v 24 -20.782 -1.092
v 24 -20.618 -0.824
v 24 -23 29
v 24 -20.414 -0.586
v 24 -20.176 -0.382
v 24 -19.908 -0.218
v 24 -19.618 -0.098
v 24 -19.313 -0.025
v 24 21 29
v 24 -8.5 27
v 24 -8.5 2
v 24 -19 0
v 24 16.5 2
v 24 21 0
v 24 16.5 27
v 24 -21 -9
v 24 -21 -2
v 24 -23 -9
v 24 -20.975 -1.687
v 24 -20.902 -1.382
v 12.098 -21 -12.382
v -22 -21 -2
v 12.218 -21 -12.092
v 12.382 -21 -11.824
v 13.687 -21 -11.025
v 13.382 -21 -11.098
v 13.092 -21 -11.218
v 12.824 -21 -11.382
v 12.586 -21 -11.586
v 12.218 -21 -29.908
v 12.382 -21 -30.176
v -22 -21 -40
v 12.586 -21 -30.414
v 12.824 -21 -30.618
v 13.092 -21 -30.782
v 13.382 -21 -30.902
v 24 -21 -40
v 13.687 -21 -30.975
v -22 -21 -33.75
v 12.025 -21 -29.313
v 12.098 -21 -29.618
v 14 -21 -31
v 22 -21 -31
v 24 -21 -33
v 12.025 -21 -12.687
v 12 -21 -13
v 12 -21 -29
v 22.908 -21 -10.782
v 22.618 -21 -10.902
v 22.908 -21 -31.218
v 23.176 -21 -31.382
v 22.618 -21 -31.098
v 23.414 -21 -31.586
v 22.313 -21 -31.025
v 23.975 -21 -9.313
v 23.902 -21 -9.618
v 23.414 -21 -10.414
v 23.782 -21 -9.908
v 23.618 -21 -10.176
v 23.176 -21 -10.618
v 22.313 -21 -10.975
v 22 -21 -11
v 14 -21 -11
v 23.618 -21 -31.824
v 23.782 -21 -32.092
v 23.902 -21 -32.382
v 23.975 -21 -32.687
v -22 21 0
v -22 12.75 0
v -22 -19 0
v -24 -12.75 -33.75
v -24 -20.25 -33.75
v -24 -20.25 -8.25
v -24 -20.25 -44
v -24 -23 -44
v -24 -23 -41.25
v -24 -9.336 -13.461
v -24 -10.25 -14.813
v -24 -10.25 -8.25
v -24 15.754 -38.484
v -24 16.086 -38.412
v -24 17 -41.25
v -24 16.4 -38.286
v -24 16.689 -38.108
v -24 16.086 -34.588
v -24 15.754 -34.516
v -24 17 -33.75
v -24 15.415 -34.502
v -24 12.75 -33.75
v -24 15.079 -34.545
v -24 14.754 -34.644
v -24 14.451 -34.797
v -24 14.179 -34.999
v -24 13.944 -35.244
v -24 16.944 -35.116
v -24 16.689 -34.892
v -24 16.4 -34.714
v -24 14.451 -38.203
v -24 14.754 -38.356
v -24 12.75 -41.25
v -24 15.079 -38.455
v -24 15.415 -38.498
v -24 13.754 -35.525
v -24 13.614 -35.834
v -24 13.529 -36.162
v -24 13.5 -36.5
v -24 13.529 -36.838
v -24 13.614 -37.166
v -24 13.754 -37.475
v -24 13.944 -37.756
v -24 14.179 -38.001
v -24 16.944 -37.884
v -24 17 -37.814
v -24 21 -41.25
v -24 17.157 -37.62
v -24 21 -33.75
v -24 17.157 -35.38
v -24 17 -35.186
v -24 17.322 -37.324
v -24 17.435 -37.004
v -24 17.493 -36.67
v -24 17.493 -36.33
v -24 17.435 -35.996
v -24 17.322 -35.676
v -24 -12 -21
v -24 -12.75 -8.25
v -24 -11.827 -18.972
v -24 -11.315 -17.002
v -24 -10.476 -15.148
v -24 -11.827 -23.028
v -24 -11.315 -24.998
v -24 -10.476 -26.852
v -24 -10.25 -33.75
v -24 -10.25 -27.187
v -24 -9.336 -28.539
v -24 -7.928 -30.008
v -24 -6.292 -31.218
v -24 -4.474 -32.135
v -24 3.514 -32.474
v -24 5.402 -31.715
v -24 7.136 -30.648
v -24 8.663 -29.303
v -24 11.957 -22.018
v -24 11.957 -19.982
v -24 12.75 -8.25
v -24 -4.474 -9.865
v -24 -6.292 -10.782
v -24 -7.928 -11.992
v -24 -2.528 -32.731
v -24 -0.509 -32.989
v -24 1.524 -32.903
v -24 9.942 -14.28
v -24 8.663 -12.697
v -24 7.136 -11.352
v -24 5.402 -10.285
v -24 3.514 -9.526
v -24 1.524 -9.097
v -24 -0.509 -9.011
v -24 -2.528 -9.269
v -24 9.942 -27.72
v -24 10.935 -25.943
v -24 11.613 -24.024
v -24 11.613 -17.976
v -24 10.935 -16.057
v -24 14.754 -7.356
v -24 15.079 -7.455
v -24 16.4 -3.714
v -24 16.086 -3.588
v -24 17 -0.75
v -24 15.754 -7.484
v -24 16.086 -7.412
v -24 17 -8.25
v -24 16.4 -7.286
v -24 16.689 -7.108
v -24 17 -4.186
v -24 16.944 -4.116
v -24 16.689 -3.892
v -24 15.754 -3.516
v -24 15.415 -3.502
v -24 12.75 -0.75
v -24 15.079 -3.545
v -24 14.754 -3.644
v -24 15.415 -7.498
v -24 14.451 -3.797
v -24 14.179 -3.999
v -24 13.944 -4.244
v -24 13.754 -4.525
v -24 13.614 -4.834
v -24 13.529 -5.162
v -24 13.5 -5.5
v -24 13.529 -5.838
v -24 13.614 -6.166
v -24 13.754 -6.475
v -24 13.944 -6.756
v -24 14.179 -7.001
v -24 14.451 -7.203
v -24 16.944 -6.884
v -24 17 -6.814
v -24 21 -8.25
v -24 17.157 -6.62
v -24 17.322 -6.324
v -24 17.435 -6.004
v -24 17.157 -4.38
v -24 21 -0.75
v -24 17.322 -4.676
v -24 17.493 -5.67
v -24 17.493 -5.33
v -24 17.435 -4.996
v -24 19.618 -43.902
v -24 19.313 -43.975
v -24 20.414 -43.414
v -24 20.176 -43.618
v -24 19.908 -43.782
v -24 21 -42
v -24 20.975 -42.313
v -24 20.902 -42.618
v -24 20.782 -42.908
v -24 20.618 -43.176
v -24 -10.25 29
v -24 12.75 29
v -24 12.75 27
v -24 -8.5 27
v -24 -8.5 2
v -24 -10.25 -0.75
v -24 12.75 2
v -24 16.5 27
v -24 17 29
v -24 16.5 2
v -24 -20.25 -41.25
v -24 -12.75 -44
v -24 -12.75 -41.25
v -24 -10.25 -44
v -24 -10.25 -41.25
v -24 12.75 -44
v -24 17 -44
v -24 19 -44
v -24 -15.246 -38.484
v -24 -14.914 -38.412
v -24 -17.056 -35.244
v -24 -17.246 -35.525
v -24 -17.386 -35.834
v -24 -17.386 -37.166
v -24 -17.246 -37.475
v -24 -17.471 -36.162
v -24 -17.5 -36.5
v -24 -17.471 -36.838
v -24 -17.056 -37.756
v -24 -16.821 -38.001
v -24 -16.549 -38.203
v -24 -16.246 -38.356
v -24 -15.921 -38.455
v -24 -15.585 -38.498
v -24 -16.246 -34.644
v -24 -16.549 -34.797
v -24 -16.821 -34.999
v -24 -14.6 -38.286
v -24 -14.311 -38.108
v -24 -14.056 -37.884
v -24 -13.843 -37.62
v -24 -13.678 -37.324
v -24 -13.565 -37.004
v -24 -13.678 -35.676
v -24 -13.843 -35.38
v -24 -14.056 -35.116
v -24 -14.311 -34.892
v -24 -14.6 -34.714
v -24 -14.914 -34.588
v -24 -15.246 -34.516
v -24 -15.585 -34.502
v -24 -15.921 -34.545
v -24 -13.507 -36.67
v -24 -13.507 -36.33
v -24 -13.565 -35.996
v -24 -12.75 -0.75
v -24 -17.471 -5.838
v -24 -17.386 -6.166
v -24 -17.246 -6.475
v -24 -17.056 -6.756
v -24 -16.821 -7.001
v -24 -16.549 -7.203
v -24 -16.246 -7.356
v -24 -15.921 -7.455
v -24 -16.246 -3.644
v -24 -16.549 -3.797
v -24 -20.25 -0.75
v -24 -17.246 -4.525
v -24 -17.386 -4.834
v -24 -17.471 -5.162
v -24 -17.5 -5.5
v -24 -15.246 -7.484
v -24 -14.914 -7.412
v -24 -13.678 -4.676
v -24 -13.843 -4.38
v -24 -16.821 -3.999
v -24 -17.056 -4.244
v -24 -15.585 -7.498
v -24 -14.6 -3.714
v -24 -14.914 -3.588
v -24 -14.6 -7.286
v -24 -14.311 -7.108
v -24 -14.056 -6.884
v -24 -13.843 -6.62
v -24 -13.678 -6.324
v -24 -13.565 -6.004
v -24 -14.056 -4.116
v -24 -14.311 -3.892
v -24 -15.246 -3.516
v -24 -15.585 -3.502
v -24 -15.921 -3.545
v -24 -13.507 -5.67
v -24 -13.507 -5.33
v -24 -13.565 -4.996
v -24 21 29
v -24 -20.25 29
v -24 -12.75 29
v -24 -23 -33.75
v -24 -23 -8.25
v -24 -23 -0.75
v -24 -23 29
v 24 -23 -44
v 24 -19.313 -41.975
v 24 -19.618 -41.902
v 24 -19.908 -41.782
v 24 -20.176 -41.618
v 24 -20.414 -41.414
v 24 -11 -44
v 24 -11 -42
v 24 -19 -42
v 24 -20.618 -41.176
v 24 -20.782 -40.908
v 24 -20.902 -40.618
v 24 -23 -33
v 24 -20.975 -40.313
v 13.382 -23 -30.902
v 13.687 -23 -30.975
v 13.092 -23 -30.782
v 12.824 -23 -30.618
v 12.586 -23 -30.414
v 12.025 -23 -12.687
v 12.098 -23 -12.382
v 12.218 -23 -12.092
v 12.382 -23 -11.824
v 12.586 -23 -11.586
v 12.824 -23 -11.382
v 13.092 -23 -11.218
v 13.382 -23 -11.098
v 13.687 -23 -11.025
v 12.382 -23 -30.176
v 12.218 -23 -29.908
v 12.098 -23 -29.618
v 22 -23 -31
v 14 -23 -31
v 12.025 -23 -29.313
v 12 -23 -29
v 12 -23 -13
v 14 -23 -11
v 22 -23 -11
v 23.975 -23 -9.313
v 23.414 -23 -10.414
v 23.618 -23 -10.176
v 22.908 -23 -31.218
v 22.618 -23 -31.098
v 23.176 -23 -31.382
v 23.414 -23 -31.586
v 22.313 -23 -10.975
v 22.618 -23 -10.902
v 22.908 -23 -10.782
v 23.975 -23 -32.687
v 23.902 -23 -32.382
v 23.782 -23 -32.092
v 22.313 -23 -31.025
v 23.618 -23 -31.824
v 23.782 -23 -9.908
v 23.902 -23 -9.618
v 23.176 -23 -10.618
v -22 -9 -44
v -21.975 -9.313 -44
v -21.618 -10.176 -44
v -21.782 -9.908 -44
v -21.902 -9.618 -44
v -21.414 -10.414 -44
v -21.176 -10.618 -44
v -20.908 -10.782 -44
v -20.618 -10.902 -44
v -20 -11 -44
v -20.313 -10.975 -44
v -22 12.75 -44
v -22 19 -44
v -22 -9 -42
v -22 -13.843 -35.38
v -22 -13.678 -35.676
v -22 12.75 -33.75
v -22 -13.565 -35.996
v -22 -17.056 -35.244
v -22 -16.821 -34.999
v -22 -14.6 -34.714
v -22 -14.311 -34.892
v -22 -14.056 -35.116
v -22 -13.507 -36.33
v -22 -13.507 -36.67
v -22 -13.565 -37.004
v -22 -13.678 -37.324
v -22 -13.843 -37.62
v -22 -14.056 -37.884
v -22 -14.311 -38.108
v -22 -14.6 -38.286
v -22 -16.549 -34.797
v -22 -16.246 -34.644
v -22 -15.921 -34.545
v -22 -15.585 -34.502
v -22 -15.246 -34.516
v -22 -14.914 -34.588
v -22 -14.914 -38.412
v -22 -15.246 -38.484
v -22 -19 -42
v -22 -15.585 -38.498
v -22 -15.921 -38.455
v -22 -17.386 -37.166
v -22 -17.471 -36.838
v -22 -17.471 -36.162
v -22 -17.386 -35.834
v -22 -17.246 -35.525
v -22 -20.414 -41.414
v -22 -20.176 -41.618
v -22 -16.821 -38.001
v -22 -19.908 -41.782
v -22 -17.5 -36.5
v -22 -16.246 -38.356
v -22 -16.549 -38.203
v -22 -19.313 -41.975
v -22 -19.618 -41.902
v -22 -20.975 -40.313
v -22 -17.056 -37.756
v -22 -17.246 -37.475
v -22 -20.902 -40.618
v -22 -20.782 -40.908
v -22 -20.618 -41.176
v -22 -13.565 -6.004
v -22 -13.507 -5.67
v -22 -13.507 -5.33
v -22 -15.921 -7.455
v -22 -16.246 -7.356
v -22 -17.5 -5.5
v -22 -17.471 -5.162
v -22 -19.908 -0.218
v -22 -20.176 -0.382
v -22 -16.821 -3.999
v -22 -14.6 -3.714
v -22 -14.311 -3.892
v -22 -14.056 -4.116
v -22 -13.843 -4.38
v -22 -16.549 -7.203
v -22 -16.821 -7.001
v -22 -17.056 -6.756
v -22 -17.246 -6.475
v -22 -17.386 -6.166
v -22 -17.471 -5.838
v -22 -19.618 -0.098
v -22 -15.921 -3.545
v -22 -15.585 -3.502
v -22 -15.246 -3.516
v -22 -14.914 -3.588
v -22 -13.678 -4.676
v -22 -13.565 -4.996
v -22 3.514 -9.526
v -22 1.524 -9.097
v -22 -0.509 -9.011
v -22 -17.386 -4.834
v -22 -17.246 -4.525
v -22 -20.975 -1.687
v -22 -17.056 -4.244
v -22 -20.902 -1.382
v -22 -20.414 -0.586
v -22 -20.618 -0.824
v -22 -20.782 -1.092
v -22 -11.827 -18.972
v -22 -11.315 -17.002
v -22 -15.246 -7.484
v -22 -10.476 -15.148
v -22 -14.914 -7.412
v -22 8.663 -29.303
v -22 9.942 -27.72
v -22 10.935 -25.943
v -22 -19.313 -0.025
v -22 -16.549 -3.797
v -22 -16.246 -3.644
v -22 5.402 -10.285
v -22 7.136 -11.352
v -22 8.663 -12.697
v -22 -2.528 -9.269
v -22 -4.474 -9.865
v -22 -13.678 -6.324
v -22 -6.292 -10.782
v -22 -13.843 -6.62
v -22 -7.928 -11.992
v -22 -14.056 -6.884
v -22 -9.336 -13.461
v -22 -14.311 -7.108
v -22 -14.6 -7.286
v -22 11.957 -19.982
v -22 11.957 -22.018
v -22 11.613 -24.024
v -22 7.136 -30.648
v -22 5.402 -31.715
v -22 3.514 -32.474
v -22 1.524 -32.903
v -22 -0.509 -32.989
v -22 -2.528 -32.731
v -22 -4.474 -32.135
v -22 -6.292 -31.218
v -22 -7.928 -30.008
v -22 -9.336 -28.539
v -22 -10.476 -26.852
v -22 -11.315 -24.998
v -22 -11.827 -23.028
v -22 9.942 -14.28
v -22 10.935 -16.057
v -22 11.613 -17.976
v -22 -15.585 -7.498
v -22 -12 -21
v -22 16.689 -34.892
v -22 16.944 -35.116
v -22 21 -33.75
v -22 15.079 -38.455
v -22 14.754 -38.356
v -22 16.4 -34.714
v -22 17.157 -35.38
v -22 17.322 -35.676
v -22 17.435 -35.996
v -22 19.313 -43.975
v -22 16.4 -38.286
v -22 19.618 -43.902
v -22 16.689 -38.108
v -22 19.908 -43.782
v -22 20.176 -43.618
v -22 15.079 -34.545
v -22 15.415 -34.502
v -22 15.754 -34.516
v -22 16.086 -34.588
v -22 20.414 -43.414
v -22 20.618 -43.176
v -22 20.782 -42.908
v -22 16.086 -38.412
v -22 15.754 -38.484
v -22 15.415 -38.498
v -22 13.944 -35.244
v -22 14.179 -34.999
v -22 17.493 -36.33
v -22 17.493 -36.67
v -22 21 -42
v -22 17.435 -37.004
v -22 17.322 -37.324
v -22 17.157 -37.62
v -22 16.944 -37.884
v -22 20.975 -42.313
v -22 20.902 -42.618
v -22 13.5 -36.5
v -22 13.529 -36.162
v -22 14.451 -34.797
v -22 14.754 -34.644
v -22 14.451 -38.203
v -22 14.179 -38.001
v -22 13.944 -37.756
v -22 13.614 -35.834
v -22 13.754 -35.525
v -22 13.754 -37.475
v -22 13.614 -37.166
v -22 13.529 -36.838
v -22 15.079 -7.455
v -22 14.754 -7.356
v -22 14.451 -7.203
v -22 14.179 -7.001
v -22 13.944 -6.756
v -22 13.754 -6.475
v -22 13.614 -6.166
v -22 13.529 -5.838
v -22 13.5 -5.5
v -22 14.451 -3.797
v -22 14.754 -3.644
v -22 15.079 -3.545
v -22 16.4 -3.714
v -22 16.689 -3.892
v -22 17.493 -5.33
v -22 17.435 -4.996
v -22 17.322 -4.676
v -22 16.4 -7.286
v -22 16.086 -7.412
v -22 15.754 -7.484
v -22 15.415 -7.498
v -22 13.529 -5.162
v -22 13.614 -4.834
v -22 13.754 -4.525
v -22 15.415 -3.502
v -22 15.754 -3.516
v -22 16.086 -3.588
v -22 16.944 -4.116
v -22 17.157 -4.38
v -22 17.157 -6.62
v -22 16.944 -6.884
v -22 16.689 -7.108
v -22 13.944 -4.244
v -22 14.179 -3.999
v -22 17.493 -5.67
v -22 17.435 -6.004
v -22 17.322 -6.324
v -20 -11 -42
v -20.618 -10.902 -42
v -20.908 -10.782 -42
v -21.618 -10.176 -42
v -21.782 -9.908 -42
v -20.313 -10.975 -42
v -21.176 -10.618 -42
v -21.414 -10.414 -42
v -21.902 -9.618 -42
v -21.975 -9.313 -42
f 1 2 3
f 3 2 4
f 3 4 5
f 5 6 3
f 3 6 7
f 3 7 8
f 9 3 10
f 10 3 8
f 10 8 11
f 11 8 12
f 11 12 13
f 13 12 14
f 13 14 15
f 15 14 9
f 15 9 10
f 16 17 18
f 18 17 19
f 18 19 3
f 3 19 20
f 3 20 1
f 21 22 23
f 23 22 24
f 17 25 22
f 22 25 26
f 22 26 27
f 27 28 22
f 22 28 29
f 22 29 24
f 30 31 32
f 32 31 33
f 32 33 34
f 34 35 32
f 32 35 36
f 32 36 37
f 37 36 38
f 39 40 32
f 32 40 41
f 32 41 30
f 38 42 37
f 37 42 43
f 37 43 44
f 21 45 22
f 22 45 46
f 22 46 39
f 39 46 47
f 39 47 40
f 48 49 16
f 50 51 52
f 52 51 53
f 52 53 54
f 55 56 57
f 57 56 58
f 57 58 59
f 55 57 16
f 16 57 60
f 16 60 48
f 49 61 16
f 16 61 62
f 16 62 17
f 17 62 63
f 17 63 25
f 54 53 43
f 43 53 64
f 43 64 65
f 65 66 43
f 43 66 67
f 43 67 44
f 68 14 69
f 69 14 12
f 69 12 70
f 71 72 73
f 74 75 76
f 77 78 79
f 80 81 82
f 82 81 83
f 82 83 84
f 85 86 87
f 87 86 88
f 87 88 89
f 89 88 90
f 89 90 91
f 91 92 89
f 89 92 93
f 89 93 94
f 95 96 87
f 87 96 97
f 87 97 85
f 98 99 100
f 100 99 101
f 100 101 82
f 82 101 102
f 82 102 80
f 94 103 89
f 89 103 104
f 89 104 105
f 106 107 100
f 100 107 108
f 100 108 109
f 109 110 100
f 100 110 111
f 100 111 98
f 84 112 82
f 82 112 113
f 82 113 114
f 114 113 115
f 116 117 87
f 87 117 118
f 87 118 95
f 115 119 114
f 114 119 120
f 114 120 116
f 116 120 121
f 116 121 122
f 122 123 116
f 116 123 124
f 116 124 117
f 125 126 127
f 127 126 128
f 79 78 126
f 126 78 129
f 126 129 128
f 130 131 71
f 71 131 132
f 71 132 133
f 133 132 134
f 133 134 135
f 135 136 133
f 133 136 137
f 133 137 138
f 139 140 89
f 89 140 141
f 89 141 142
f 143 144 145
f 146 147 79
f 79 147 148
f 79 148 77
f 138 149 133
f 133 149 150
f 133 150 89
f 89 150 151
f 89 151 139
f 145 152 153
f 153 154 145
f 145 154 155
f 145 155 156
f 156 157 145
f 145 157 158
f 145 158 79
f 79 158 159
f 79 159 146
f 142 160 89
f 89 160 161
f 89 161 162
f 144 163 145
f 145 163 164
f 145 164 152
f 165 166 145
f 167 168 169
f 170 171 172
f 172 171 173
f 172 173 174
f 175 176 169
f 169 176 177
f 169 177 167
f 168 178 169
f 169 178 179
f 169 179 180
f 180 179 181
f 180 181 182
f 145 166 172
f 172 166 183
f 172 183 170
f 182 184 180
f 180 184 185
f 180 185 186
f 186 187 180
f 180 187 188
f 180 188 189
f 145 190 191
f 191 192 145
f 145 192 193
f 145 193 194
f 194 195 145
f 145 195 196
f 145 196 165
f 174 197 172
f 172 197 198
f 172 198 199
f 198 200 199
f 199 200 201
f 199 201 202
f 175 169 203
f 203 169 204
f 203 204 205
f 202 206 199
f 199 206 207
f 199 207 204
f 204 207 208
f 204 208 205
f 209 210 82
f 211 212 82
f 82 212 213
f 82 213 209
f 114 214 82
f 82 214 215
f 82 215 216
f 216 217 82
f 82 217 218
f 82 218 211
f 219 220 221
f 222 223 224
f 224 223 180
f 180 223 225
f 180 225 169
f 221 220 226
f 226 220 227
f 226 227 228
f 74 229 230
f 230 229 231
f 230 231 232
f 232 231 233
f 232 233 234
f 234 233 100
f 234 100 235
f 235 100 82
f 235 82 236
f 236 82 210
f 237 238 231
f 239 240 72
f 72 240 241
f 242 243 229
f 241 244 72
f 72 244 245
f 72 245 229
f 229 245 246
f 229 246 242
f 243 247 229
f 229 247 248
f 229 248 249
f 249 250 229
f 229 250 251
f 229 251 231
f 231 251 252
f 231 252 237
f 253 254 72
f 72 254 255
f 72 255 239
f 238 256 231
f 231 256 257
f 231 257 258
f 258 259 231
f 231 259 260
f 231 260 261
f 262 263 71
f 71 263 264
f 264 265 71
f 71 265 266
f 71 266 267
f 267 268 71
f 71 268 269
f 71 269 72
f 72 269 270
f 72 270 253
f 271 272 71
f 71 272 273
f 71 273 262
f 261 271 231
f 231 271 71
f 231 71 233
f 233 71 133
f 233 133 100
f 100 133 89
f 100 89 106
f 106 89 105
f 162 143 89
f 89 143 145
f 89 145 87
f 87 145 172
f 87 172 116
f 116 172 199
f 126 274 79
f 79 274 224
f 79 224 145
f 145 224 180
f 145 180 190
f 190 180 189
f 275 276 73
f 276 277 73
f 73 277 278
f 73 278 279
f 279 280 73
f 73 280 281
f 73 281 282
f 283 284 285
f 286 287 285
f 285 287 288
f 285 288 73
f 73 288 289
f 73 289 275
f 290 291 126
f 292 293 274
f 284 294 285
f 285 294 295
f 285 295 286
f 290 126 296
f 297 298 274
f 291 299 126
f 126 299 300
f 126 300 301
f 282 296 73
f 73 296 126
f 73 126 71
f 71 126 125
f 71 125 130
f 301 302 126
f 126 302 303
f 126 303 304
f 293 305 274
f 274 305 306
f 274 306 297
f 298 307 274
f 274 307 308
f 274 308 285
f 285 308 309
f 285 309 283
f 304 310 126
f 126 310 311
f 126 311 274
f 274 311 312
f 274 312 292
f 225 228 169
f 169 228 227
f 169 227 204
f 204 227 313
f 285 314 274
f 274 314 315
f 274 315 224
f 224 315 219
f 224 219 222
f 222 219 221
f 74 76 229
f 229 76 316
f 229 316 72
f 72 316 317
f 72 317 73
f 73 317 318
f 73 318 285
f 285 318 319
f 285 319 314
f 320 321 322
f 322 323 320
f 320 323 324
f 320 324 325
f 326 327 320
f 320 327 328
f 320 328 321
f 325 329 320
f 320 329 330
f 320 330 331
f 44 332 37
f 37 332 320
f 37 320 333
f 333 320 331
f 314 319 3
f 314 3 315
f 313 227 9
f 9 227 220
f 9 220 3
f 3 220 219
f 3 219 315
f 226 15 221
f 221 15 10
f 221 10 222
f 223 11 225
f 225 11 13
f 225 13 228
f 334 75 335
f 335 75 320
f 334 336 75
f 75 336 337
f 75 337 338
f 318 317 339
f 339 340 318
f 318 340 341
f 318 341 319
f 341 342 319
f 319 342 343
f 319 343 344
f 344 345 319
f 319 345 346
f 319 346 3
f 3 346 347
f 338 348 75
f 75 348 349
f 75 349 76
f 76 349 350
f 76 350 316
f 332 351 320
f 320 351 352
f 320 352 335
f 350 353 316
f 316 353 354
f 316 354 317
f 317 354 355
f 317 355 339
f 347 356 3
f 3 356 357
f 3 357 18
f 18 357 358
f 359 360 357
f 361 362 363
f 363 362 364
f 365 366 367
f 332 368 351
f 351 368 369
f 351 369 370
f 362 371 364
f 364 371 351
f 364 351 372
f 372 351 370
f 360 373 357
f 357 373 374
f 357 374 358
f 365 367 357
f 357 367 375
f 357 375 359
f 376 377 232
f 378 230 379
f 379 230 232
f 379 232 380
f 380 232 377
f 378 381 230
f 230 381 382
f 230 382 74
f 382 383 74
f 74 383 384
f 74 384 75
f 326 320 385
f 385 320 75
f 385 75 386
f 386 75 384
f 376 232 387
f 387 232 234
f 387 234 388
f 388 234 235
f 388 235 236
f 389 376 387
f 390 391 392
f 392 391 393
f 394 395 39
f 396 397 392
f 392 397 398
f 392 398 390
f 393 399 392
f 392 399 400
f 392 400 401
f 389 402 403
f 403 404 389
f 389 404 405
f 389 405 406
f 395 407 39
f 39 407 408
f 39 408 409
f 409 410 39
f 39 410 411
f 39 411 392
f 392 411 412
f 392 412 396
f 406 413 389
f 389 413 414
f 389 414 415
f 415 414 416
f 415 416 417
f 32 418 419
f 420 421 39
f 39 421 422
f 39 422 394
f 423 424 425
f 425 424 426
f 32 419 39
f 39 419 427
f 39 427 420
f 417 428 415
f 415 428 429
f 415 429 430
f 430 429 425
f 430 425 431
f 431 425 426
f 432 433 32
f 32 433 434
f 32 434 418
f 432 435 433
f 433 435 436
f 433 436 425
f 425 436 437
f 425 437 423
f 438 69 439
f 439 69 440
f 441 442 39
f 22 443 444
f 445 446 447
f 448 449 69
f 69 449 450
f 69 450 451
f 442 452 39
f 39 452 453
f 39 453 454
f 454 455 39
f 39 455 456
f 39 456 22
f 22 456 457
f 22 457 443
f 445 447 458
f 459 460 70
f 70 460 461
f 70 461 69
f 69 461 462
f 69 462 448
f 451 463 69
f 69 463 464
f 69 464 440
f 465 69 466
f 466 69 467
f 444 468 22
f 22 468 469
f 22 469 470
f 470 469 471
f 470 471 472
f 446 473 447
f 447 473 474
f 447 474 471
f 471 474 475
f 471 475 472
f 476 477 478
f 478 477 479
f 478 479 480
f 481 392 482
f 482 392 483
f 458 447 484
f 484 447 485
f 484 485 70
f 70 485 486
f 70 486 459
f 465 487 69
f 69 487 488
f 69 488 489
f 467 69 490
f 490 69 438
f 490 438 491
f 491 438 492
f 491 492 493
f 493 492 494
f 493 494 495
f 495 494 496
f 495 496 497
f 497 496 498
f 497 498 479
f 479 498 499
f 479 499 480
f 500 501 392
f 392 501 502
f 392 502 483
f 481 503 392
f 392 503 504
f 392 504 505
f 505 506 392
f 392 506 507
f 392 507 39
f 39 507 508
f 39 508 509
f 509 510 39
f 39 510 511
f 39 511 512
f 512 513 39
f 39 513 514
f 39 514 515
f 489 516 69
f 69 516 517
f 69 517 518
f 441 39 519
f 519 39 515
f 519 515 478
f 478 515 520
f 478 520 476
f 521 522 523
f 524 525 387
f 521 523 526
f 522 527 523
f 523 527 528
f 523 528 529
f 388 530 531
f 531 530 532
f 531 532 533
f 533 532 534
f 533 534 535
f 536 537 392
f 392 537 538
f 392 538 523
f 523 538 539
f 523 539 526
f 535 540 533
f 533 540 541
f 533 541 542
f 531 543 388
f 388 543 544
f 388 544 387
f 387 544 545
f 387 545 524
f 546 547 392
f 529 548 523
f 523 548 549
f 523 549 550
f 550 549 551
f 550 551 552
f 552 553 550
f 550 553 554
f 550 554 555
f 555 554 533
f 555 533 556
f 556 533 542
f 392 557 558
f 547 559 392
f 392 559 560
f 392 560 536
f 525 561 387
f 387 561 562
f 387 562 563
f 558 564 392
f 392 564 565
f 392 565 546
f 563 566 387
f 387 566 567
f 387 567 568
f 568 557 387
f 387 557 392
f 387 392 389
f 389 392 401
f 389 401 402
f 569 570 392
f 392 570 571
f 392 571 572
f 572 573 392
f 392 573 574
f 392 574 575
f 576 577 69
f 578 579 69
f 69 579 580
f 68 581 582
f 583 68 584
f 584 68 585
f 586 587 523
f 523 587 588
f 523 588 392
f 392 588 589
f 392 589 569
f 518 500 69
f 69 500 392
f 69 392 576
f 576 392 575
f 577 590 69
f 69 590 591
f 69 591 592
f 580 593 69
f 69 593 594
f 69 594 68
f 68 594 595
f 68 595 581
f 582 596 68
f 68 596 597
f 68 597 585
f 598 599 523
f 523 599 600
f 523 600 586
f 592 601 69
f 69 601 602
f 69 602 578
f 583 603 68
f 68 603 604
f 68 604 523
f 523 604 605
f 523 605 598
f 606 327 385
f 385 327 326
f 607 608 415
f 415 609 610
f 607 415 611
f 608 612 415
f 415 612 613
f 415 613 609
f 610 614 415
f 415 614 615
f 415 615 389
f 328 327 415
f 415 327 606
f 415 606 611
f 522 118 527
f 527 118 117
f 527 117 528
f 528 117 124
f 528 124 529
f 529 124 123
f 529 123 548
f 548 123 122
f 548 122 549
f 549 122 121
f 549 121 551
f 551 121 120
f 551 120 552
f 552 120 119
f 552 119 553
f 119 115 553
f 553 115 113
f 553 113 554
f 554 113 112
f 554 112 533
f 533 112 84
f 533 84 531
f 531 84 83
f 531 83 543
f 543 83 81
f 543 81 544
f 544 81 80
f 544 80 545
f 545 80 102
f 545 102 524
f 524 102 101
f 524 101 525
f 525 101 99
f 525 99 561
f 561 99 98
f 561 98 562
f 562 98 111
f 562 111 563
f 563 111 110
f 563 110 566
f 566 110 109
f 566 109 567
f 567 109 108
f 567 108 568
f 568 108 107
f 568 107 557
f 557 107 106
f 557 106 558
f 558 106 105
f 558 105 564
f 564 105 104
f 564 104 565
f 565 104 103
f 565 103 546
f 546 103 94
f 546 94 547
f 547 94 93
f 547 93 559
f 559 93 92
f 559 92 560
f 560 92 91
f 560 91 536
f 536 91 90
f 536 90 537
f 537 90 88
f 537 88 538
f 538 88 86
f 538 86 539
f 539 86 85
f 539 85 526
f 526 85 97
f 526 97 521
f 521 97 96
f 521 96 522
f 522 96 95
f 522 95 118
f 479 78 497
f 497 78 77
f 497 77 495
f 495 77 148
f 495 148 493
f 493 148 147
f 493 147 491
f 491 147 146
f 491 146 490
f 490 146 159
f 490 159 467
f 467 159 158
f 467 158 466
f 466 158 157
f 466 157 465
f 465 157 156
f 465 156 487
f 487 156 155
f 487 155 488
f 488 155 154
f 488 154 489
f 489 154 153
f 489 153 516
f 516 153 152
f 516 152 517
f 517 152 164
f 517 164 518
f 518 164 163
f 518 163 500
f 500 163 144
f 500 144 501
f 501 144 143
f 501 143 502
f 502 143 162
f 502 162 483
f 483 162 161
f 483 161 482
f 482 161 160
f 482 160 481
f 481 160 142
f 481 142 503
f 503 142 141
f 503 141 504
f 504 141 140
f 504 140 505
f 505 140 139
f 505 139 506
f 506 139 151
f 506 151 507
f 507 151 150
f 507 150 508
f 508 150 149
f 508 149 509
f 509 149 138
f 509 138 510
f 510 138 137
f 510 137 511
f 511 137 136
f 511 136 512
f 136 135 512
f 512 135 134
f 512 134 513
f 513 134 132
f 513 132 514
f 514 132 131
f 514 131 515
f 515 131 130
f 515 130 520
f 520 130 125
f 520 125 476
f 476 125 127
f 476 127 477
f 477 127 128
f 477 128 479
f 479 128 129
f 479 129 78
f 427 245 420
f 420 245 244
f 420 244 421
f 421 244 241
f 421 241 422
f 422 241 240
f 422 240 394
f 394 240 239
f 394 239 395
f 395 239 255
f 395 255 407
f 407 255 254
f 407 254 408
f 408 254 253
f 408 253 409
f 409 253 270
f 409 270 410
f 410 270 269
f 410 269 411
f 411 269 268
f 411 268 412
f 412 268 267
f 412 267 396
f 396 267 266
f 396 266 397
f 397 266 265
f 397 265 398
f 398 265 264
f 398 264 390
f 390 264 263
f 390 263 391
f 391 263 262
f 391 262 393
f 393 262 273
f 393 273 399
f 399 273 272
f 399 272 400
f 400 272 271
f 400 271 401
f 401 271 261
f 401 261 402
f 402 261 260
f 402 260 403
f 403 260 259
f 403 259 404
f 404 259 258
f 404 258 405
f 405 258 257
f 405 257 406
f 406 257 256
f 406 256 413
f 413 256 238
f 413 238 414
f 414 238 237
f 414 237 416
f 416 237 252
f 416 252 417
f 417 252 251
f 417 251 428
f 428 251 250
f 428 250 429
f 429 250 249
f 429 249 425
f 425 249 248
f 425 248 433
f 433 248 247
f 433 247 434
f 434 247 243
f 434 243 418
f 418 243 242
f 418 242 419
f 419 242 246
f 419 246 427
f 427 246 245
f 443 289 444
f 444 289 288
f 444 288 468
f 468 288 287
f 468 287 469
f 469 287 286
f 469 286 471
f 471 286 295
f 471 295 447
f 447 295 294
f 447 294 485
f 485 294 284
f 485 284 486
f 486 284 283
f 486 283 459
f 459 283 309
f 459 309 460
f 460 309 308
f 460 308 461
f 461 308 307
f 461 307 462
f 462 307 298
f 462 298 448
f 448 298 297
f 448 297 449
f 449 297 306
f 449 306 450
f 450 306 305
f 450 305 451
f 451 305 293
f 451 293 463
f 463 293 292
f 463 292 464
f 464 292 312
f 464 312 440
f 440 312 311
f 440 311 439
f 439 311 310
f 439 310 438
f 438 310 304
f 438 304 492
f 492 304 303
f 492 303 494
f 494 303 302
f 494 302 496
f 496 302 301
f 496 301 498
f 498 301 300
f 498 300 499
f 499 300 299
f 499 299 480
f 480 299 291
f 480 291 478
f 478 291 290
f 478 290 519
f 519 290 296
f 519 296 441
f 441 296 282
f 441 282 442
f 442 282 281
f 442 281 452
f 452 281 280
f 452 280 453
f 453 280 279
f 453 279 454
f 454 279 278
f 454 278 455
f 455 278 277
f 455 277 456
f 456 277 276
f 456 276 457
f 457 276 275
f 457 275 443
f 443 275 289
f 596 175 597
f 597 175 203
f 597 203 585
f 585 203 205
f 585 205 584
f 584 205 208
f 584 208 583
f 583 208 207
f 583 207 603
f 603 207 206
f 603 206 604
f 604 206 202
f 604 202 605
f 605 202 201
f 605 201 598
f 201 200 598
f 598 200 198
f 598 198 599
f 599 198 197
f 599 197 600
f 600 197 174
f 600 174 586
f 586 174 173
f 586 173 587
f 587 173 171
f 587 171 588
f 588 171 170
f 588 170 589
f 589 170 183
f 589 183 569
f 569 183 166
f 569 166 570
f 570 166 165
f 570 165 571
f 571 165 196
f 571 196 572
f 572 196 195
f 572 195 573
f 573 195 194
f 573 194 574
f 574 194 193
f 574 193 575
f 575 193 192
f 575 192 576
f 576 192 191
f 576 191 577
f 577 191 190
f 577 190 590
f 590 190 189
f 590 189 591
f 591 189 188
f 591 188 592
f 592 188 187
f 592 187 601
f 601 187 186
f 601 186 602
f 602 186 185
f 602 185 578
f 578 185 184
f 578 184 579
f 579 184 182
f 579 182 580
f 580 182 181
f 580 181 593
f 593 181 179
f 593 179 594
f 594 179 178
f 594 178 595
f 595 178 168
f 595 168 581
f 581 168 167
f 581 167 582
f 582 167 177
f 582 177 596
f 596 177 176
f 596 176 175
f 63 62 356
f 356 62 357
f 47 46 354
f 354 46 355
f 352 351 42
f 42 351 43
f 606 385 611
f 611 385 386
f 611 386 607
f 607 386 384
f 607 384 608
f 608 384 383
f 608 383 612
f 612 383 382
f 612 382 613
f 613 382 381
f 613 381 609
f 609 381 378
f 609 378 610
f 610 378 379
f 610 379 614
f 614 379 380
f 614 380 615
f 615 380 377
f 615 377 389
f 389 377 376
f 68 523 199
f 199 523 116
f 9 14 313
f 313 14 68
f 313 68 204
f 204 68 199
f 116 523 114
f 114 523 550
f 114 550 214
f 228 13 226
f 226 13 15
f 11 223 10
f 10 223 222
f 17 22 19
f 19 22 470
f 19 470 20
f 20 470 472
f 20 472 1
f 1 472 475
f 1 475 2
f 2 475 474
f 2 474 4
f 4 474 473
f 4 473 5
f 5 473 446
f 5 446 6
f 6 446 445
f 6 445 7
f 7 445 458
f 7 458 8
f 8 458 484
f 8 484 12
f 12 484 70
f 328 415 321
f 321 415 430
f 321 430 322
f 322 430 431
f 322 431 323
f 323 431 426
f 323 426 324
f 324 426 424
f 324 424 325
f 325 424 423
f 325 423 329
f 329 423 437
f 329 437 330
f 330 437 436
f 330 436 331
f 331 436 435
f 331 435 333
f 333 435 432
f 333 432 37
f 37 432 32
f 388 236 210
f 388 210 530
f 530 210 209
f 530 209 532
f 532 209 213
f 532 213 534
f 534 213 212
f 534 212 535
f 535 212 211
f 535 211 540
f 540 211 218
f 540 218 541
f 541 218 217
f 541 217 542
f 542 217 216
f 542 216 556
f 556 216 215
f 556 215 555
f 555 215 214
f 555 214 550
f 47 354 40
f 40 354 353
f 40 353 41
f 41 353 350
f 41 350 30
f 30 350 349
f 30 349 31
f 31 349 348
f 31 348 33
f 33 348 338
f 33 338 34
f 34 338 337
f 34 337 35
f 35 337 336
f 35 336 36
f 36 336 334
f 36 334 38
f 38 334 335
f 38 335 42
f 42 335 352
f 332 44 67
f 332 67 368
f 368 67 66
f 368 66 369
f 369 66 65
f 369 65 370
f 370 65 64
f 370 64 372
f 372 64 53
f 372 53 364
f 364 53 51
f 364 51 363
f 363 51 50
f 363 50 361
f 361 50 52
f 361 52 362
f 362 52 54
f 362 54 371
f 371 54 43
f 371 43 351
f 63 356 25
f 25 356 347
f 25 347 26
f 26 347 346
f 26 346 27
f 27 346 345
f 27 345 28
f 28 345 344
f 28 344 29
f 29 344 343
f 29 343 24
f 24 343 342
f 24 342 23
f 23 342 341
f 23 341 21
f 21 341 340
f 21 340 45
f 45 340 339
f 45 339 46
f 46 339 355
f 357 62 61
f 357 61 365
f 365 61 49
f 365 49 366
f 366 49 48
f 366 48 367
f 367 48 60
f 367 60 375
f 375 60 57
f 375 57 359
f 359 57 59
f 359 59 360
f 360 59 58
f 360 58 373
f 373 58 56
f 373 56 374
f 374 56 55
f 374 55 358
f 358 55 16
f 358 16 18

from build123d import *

# Parameters (mm, degrees)
SKETCH1_W                = 48
SKETCH1_H                = 29
BOSS_EXTRUDE1_DEPTH      = 29
SKETCH2_W                = 25
SKETCH2_H                = 25
CUT_EXTRUDE1_DEPTH       = 48
SKETCH3_W                = 48
SKETCH3_H                = 46
BOSS_EXTRUDE2_DEPTH      = 2
BOSS_EXTRUDE4_DEPTH      = 44
BOSS_EXTRUDE4_DEPTH_BACK = 2
SKETCH4_W                = 48
SKETCH4_H                = 2
SKETCH5_W                = 2
SKETCH5_H                = 46
BOSS_EXTRUDE5_DEPTH      = 44
SKETCH6_W                = 48
SKETCH6_H                = 12
BOSS_EXTRUDE6_DEPTH      = 2
SKETCH8_R                = 2
SKETCH8_R_2              = 12
CUT_EXTRUDE2_DEPTH       = 2
SKETCH9_W                = 12
SKETCH9_H                = 20
CUT_EXTRUDE3_DEPTH       = 2
FILLET4_R                = 2
SKETCH10_W               = 48
SKETCH10_H               = 10.5
BOSS_EXTRUDE7_DEPTH      = 29
SKETCH11_W               = 48
SKETCH11_H               = 2
CUT_EXTRUDE5_DEPTH       = 73
SKETCH13_W               = 25
SKETCH13_H               = 4
CUT_EXTRUDE6_DEPTH       = 73
SKETCH14_W               = 28
SKETCH14_H               = 14.5
BOSS_EXTRUDE10_DEPTH     = 48
FILLET5_R                = 2
FILLET6_R                = 2
FILLET7_R                = 2
FILLET8_R                = 2


with BuildPart() as part:
    # Sketch1 → Boss-Extrude1 (new body)
    with BuildSketch(Plane.XY):
        Rectangle(SKETCH1_W, SKETCH1_H)
    extrude(amount=BOSS_EXTRUDE1_DEPTH)

    # Sketch2 → Cut-Extrude1 (cut)
    with BuildSketch(Plane.ZY.offset(24)):
        with Locations((14.5, 0)):
            Rectangle(SKETCH2_W, SKETCH2_H)
    extrude(amount=-CUT_EXTRUDE1_DEPTH, mode=Mode.SUBTRACT)

    # Sketch3 → Boss-Extrude2 (add)
    with BuildSketch(Plane(origin=(0, 0, 0), x_dir=(-1, 0, 0), z_dir=(0, 0, -1))):
        Rectangle(SKETCH3_W, SKETCH3_H)
    extrude(amount=-BOSS_EXTRUDE2_DEPTH)

    # Sketch4 → Boss-Extrude4 (add, two sides: drawn at the far end of the back side and taken through both)
    with BuildSketch(Plane(origin=(0, 0, 0), x_dir=(-1, 0, 0), z_dir=(0, 0, -1)).offset(-BOSS_EXTRUDE4_DEPTH_BACK)):
        with Locations((0, -22)):
            Rectangle(SKETCH4_W, SKETCH4_H)
    extrude(amount=BOSS_EXTRUDE4_DEPTH + BOSS_EXTRUDE4_DEPTH_BACK)

    # Sketch5 → Boss-Extrude5 (add)
    with BuildSketch(Plane(origin=(0, 0, 0), x_dir=(-1, 0, 0), z_dir=(0, 0, -1))):
        with Locations((23, 0)):
            Rectangle(SKETCH5_W, SKETCH5_H)
    extrude(amount=BOSS_EXTRUDE5_DEPTH)

    # Sketch6 → Boss-Extrude6 (add)
    with BuildSketch(Plane(origin=(0, 0, -44), x_dir=(-1, 0, 0), z_dir=(0, 0, -1))):
        with Locations((0, -17)):
            Rectangle(SKETCH6_W, SKETCH6_H)
    extrude(amount=-BOSS_EXTRUDE6_DEPTH)

    # Sketch8 → Cut-Extrude2 (cut)
    with BuildSketch(Plane.ZY.offset(24)):
        with Locations(Location((-36.5, 15.5, 0), (0, 0, 270))):
            Circle(SKETCH8_R)
        with Locations(Location((-5.5, 15.5, 0), (0, 0, 270))):
            Circle(SKETCH8_R)
        with Locations(Location((-5.5, -15.5, 0), (0, 0, 270))):
            Circle(SKETCH8_R)
        with Locations(Location((-36.5, -15.5, 0), (0, 0, 270))):
            Circle(SKETCH8_R)
        with Locations(Location((-21, 0, 0), (0, 0, 270))):
            Circle(SKETCH8_R_2)
    extrude(amount=-CUT_EXTRUDE2_DEPTH, mode=Mode.SUBTRACT)

    # Sketch9 → Cut-Extrude3 (cut)
    with BuildSketch(Plane(origin=(0, -21, 0), x_dir=(1, 0, 0), z_dir=(0, 1, 0))):
        with Locations((18, 21)):
            Rectangle(SKETCH9_W, SKETCH9_H)
    extrude(amount=-CUT_EXTRUDE3_DEPTH, mode=Mode.SUBTRACT)

    # Fillet4
    fillet4_edges = [part.edges().sort_by_distance(p)[0] for p in [
        (-22, -11, -43),
    ]]
    fillet(fillet4_edges, radius=FILLET4_R)

    # Sketch10 → Boss-Extrude7 (add)
    with BuildSketch(Plane.XY.offset(29)):
        with Locations((0, 17.75)):
            Rectangle(SKETCH10_W, SKETCH10_H)
        with Locations((0, -17.75)):
            Rectangle(SKETCH10_W, SKETCH10_H)
    extrude(amount=-BOSS_EXTRUDE7_DEPTH)

    # Sketch11 → Cut-Extrude5 (cut)
    with BuildSketch(Plane.XY.offset(29)):
        with Locations((0, 22)):
            Rectangle(SKETCH11_W, SKETCH11_H)
    extrude(amount=-CUT_EXTRUDE5_DEPTH, mode=Mode.SUBTRACT)

    # Sketch13 → Cut-Extrude6 (cut)
    with BuildSketch(Plane.ZY.offset(24)):
        with Locations((14.5, 14.5)):
            Rectangle(SKETCH13_W, SKETCH13_H)
    extrude(amount=-CUT_EXTRUDE6_DEPTH, mode=Mode.SUBTRACT)

    # Sketch14 → Boss-Extrude10 (add)
    with BuildSketch(Plane.ZY.offset(24)):
        with Locations((15, -15.75)):
            Rectangle(SKETCH14_W, SKETCH14_H)
    extrude(amount=-BOSS_EXTRUDE10_DEPTH)

    # Fillet5
    fillet5_edges = [part.edges().sort_by_distance(p)[0] for p in [
        (1, -21, 0),
    ]]
    fillet(fillet5_edges, radius=FILLET5_R)

    # Fillet6
    fillet6_edges = [part.edges().sort_by_distance(p)[0] for p in [
        (1, -21, -42),
    ]]
    fillet(fillet6_edges, radius=FILLET6_R)

    # Fillet7
    fillet7_edges = [part.edges().sort_by_distance(p)[0] for p in [
        (-23, 21, -44),
    ]]
    fillet(fillet7_edges, radius=FILLET7_R)

    # Fillet8
    fillet8_edges = [part.edges().sort_by_distance(p)[0] for p in [
        (24, -22, -31),
        (24, -22, -11),
        (12, -22, -11),
        (12, -22, -31),
    ]]
    fillet(fillet8_edges, radius=FILLET8_R)


solid = part.part
